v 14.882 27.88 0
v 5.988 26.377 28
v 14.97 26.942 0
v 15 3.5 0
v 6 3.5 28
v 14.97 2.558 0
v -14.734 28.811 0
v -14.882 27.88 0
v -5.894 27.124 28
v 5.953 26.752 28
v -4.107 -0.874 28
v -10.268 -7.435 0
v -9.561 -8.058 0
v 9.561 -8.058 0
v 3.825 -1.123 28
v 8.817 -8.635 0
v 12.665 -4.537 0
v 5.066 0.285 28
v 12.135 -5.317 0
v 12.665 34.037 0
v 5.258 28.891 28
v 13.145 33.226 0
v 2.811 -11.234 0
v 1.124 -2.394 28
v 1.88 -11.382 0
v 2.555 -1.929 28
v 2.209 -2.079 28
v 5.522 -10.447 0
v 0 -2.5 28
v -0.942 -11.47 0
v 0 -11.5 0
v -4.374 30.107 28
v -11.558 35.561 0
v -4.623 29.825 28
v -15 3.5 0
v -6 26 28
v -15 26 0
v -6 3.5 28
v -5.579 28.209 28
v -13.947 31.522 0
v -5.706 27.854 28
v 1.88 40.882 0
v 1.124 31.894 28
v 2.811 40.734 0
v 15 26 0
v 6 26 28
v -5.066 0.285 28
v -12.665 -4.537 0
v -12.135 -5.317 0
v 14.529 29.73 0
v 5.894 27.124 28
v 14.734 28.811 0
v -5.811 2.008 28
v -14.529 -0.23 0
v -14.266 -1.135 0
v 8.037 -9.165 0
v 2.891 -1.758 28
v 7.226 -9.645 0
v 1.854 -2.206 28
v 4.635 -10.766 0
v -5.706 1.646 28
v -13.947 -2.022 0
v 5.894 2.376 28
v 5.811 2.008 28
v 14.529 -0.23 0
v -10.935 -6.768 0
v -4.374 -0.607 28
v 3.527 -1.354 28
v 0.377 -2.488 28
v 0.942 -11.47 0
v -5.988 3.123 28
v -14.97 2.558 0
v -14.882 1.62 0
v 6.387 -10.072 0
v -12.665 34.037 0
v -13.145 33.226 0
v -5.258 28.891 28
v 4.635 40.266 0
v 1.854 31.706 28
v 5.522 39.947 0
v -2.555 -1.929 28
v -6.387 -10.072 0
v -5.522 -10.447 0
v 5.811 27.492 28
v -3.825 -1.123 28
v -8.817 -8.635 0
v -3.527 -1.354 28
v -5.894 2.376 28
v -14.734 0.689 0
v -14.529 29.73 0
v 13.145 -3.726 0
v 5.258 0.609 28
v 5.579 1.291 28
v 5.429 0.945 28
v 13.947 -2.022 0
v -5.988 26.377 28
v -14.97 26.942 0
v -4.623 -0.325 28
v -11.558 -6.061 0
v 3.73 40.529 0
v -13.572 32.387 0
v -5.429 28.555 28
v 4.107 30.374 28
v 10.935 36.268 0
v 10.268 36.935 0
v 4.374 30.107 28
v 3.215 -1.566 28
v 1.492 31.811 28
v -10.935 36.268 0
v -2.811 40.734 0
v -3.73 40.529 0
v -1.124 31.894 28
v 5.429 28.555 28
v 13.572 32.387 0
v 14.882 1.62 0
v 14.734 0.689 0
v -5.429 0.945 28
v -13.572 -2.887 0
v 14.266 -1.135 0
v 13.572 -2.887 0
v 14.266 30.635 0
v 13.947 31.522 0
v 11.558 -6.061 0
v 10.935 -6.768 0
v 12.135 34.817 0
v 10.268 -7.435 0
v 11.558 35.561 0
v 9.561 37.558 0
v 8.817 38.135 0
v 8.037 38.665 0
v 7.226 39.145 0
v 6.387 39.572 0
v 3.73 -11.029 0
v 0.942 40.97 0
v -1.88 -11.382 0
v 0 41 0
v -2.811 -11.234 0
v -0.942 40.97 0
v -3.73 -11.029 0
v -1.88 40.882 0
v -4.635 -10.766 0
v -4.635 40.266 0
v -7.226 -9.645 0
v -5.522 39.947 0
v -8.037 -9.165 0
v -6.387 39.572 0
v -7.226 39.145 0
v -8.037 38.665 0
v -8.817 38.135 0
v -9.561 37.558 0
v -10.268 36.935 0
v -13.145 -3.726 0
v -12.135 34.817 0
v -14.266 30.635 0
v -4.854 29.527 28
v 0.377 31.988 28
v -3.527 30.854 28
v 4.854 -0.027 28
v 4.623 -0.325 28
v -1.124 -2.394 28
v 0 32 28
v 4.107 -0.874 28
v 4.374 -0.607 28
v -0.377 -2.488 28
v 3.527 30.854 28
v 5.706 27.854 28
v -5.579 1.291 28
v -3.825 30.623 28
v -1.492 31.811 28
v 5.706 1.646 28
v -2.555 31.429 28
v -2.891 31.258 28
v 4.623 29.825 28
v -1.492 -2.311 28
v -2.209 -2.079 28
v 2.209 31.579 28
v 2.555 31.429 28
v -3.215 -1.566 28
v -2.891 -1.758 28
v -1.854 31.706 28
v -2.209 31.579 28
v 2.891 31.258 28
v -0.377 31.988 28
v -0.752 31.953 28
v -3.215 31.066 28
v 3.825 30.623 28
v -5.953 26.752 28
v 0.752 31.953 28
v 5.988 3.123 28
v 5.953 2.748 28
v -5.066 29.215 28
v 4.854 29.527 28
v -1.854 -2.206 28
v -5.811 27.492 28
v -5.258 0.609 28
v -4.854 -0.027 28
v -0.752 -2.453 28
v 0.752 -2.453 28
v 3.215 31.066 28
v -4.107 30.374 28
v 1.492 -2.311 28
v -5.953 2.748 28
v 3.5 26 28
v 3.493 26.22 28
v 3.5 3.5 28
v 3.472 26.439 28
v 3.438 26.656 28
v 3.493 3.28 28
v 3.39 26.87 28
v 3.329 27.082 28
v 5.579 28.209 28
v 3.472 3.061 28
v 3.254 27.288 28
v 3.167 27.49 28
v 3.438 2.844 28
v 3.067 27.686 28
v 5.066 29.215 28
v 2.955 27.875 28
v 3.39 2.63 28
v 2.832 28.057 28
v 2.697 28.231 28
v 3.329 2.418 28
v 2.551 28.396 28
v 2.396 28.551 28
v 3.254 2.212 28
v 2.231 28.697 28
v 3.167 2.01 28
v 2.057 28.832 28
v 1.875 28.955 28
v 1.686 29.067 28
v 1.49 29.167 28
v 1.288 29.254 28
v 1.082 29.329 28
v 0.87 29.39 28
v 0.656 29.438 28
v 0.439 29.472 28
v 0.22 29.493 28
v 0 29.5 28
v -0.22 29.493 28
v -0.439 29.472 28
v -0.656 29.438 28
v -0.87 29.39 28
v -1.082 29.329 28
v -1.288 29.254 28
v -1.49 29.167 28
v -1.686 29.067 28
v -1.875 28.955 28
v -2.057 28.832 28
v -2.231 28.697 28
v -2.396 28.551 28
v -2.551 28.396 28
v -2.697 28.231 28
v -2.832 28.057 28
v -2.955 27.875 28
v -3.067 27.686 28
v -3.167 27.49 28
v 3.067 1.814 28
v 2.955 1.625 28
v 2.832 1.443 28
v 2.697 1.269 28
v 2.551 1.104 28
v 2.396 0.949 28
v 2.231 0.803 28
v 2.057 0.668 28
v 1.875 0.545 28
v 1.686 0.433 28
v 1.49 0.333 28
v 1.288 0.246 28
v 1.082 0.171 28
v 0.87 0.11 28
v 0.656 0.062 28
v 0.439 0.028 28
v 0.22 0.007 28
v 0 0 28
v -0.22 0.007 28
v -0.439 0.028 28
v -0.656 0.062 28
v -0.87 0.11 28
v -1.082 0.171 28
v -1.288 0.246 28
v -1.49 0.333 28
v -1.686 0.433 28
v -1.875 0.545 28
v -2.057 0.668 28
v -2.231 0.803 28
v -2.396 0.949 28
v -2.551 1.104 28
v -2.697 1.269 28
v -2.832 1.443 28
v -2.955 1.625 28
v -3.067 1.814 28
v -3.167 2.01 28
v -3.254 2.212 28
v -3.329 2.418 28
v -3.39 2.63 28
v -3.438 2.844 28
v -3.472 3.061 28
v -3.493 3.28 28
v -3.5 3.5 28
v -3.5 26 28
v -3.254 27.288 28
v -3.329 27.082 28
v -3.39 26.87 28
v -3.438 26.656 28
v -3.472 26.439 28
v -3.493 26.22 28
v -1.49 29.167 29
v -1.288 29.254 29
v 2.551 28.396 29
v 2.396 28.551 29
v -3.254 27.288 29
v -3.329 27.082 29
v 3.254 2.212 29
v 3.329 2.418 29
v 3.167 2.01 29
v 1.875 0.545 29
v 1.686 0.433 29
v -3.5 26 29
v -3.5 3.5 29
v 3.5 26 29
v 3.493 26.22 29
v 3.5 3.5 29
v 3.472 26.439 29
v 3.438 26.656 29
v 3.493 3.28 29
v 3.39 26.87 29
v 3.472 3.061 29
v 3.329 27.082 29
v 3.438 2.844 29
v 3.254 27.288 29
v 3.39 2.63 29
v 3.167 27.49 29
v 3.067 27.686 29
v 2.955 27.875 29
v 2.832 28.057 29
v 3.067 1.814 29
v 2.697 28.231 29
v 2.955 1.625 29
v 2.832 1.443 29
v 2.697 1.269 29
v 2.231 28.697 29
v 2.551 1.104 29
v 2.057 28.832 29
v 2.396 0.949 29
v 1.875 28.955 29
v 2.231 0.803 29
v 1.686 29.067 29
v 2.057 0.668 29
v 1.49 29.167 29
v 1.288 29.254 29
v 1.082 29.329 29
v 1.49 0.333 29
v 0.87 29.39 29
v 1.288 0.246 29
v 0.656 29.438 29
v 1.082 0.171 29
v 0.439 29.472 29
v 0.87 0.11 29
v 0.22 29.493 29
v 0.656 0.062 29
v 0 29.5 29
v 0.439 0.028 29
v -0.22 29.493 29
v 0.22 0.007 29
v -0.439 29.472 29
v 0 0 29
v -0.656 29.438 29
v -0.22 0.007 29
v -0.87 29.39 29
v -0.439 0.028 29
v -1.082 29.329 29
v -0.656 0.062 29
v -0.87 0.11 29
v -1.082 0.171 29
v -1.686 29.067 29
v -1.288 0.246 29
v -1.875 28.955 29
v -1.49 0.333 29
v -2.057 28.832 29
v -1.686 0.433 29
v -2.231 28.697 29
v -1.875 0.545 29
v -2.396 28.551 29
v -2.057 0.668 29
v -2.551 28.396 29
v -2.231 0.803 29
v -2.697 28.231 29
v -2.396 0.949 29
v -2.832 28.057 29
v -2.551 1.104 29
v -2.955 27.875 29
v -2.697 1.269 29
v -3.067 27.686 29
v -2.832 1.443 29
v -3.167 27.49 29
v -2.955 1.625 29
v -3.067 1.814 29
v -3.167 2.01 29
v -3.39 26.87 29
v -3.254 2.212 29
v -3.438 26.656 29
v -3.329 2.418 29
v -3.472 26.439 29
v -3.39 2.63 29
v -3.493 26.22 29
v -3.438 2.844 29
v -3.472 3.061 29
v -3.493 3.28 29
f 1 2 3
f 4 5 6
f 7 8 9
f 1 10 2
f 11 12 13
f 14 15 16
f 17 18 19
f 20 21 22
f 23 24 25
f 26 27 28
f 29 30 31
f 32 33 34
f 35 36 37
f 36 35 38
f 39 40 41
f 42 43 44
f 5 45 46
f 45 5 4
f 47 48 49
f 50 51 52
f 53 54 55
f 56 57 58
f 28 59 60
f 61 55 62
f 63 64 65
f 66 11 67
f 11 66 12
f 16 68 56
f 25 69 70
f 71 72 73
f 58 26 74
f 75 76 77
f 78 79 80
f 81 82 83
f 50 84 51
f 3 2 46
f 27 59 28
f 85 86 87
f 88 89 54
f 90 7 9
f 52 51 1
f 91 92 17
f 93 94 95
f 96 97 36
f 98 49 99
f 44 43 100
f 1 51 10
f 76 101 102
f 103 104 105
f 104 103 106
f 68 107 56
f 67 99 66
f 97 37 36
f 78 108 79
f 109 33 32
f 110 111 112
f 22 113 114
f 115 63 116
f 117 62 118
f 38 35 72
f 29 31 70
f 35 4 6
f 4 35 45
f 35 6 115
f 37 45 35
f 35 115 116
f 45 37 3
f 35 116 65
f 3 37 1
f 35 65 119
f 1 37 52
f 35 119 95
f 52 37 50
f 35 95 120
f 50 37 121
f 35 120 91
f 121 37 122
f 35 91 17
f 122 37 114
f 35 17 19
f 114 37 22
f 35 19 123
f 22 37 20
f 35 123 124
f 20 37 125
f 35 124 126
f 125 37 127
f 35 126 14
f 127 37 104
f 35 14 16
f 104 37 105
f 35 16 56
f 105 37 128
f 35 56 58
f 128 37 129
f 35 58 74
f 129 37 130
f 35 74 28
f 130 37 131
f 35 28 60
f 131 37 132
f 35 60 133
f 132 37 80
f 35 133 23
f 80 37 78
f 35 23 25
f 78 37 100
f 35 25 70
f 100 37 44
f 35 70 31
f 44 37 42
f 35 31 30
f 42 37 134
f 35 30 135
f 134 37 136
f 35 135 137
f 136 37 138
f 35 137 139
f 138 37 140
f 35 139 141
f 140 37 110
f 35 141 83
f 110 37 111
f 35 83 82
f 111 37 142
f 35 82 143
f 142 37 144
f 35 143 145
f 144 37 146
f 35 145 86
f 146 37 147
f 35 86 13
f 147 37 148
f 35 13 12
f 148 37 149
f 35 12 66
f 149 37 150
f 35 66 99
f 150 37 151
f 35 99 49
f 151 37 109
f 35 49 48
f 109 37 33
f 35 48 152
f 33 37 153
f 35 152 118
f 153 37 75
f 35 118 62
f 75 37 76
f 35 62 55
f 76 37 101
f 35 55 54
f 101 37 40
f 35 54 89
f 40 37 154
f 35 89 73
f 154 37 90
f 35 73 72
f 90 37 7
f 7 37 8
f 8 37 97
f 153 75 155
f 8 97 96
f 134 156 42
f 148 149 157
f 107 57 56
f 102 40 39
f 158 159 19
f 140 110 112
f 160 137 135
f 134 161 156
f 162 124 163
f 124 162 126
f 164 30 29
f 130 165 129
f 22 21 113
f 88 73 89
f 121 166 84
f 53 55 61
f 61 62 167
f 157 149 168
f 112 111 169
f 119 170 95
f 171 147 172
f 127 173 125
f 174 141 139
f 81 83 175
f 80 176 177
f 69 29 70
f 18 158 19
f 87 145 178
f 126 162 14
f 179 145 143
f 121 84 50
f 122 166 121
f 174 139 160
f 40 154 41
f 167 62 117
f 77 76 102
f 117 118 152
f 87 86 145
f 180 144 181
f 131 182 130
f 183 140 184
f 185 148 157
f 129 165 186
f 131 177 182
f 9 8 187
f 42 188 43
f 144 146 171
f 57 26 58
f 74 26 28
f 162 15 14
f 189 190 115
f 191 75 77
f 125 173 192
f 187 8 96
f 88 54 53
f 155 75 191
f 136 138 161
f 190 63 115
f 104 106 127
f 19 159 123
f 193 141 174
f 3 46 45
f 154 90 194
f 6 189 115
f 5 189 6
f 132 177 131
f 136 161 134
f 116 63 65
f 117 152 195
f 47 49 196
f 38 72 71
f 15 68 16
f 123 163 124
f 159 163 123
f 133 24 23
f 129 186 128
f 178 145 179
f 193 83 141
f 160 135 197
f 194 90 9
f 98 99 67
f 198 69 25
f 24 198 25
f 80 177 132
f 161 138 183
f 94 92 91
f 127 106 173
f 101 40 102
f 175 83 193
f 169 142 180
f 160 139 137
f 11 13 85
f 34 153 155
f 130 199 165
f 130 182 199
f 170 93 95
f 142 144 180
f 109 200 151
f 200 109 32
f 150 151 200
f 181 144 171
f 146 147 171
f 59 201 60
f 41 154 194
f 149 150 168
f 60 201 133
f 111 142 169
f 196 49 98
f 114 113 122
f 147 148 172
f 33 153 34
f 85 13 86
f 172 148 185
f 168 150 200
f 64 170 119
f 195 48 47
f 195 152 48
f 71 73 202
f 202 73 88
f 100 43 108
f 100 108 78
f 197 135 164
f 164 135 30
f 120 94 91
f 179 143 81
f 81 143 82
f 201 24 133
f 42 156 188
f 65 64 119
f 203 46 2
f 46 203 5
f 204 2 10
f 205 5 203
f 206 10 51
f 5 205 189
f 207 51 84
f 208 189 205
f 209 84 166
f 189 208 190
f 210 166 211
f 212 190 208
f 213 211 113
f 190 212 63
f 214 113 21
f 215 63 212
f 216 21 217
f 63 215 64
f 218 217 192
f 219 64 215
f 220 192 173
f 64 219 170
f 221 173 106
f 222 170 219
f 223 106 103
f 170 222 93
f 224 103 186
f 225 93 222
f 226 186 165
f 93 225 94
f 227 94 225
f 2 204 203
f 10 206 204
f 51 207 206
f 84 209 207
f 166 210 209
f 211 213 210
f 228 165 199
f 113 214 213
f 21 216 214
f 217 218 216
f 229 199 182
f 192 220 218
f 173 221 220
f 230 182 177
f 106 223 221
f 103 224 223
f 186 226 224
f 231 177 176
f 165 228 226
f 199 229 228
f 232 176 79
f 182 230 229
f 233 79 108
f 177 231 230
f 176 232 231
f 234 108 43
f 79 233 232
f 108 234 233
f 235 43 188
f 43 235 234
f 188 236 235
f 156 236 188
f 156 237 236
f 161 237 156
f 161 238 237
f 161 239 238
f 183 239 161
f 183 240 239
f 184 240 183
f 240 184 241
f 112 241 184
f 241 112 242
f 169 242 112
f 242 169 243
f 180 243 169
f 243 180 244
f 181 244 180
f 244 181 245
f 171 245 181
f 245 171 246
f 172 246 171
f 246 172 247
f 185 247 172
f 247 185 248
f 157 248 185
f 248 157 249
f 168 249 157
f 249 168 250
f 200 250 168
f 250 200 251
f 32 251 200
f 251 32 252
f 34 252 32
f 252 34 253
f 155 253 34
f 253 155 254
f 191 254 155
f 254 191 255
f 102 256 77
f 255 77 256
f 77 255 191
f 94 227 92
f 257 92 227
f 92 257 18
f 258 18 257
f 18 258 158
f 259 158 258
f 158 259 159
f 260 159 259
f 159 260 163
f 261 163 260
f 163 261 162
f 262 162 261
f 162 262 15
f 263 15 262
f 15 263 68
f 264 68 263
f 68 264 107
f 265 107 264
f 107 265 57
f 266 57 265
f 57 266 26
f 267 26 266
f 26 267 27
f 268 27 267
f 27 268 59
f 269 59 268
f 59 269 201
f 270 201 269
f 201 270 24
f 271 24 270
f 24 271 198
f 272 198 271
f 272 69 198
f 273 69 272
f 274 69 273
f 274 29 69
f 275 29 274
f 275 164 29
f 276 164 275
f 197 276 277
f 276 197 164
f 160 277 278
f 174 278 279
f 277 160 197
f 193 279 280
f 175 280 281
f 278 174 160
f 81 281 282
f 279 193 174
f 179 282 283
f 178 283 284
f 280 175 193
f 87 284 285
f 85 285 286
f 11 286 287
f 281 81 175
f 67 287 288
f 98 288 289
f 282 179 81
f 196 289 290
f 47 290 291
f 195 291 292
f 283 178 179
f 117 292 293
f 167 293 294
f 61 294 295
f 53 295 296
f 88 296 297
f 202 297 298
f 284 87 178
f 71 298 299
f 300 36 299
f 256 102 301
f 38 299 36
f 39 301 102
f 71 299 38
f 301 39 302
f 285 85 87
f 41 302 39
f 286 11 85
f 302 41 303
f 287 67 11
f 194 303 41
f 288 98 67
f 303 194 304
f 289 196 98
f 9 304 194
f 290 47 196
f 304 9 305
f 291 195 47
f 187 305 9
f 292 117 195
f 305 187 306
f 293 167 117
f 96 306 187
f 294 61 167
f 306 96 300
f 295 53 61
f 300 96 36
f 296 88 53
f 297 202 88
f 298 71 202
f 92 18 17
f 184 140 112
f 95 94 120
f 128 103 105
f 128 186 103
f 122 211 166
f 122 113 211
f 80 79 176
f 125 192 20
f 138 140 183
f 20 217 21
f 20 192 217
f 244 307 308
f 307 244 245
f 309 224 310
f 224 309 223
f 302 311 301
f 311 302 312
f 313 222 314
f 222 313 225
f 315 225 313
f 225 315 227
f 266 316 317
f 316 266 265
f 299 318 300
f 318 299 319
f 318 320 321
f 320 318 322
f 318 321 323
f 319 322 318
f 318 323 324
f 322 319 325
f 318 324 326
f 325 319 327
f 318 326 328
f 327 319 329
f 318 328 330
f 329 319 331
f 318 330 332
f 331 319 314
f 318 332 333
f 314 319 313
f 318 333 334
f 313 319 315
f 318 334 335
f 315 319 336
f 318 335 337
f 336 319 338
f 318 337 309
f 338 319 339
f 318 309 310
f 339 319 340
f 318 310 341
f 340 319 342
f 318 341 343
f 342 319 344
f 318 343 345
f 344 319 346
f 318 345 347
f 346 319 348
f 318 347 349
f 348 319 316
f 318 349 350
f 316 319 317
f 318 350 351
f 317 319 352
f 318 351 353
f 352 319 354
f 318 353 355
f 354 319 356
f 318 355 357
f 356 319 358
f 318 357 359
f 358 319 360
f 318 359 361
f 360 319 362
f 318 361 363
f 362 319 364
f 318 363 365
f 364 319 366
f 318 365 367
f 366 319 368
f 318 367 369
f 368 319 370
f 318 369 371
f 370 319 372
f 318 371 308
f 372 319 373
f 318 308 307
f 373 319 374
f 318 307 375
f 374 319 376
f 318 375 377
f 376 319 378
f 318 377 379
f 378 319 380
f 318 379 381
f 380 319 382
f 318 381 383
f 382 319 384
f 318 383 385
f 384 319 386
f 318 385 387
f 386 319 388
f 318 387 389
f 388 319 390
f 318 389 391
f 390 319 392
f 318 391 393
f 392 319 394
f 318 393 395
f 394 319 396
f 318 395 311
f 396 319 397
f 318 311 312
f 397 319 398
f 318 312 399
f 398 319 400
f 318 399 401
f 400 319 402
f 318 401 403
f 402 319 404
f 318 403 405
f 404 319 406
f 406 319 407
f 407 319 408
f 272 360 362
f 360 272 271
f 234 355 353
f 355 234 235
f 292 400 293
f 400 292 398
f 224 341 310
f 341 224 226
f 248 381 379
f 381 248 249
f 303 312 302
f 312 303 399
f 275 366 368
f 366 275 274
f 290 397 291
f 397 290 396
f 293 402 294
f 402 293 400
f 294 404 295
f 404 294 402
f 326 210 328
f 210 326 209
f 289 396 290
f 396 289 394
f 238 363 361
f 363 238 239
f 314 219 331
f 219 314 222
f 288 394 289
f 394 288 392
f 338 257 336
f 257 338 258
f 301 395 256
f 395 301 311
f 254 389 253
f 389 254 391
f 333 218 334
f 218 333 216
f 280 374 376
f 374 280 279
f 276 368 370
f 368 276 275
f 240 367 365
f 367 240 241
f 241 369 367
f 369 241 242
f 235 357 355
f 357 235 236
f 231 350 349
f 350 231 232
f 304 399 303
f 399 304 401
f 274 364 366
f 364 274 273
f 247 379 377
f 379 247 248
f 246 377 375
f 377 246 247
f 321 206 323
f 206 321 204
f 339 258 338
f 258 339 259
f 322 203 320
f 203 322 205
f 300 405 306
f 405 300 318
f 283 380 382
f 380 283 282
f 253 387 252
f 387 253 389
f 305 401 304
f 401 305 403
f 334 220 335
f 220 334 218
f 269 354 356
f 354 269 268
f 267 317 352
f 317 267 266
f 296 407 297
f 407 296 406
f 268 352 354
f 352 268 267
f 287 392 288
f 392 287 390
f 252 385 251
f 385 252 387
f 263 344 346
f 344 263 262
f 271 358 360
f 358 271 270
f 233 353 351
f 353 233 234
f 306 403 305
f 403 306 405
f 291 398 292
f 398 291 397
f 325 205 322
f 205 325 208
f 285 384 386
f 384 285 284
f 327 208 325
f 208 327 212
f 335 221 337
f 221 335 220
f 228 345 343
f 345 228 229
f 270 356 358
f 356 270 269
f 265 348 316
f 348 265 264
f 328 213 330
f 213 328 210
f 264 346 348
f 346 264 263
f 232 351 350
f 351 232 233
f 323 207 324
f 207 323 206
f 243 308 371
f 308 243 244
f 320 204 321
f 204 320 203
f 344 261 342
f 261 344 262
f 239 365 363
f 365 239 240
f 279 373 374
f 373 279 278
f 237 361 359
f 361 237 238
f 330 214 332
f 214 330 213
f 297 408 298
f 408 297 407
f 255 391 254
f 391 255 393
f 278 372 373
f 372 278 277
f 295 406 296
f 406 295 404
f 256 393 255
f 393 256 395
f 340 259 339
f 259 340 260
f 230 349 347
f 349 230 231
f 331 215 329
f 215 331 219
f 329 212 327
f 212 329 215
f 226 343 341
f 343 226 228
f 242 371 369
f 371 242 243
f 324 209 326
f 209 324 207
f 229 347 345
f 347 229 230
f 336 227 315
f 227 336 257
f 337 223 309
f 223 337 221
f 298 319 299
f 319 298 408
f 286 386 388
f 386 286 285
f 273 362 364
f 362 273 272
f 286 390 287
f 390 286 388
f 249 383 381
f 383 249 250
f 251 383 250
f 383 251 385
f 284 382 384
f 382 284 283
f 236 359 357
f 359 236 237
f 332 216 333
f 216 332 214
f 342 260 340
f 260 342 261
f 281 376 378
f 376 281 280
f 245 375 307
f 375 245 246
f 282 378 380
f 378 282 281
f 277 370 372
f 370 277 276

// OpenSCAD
// 3mm x 35mm

union() {
/*
    translate([-10,-10,0]) {
        polyhedron(
            points=[
                [-20,-10,  0],  //0
                [ 40,-10,  0],  //1
                [ 40, 59,  0],  //2
                [-20, 59,  0],  //3
                [  0,  0, 28],  //4
                [ 20,  0, 28],  //5
                [ 20, 49, 28],  //6
                [  0, 49, 28] //7
            ],
            faces=[
                [0,1,2,3],  // bottom
                [4,5,1,0],  // front
                [7,6,5,4],  // top
                [5,6,2,1],  // right
                [6,7,3,2],  // back
                [7,4,0,3]
            ]
        );
    }
*/
    hull() {
        translate([0, 3.5, 0]) cylinder(h=28, r1=15, r2=6, $fn=100);
        translate([0, 26, 0]) cylinder(h=28, r1=15, r2=6, $fn=100);
    }

    hull() {
        translate([0, 3.5, 1]) cylinder(h=28, r=3.5, $fn=100);
        translate([0, 26, 1]) cylinder(h=28, r=3.5, $fn=100);
    }
}
//tr
//  cylinder(
//}
